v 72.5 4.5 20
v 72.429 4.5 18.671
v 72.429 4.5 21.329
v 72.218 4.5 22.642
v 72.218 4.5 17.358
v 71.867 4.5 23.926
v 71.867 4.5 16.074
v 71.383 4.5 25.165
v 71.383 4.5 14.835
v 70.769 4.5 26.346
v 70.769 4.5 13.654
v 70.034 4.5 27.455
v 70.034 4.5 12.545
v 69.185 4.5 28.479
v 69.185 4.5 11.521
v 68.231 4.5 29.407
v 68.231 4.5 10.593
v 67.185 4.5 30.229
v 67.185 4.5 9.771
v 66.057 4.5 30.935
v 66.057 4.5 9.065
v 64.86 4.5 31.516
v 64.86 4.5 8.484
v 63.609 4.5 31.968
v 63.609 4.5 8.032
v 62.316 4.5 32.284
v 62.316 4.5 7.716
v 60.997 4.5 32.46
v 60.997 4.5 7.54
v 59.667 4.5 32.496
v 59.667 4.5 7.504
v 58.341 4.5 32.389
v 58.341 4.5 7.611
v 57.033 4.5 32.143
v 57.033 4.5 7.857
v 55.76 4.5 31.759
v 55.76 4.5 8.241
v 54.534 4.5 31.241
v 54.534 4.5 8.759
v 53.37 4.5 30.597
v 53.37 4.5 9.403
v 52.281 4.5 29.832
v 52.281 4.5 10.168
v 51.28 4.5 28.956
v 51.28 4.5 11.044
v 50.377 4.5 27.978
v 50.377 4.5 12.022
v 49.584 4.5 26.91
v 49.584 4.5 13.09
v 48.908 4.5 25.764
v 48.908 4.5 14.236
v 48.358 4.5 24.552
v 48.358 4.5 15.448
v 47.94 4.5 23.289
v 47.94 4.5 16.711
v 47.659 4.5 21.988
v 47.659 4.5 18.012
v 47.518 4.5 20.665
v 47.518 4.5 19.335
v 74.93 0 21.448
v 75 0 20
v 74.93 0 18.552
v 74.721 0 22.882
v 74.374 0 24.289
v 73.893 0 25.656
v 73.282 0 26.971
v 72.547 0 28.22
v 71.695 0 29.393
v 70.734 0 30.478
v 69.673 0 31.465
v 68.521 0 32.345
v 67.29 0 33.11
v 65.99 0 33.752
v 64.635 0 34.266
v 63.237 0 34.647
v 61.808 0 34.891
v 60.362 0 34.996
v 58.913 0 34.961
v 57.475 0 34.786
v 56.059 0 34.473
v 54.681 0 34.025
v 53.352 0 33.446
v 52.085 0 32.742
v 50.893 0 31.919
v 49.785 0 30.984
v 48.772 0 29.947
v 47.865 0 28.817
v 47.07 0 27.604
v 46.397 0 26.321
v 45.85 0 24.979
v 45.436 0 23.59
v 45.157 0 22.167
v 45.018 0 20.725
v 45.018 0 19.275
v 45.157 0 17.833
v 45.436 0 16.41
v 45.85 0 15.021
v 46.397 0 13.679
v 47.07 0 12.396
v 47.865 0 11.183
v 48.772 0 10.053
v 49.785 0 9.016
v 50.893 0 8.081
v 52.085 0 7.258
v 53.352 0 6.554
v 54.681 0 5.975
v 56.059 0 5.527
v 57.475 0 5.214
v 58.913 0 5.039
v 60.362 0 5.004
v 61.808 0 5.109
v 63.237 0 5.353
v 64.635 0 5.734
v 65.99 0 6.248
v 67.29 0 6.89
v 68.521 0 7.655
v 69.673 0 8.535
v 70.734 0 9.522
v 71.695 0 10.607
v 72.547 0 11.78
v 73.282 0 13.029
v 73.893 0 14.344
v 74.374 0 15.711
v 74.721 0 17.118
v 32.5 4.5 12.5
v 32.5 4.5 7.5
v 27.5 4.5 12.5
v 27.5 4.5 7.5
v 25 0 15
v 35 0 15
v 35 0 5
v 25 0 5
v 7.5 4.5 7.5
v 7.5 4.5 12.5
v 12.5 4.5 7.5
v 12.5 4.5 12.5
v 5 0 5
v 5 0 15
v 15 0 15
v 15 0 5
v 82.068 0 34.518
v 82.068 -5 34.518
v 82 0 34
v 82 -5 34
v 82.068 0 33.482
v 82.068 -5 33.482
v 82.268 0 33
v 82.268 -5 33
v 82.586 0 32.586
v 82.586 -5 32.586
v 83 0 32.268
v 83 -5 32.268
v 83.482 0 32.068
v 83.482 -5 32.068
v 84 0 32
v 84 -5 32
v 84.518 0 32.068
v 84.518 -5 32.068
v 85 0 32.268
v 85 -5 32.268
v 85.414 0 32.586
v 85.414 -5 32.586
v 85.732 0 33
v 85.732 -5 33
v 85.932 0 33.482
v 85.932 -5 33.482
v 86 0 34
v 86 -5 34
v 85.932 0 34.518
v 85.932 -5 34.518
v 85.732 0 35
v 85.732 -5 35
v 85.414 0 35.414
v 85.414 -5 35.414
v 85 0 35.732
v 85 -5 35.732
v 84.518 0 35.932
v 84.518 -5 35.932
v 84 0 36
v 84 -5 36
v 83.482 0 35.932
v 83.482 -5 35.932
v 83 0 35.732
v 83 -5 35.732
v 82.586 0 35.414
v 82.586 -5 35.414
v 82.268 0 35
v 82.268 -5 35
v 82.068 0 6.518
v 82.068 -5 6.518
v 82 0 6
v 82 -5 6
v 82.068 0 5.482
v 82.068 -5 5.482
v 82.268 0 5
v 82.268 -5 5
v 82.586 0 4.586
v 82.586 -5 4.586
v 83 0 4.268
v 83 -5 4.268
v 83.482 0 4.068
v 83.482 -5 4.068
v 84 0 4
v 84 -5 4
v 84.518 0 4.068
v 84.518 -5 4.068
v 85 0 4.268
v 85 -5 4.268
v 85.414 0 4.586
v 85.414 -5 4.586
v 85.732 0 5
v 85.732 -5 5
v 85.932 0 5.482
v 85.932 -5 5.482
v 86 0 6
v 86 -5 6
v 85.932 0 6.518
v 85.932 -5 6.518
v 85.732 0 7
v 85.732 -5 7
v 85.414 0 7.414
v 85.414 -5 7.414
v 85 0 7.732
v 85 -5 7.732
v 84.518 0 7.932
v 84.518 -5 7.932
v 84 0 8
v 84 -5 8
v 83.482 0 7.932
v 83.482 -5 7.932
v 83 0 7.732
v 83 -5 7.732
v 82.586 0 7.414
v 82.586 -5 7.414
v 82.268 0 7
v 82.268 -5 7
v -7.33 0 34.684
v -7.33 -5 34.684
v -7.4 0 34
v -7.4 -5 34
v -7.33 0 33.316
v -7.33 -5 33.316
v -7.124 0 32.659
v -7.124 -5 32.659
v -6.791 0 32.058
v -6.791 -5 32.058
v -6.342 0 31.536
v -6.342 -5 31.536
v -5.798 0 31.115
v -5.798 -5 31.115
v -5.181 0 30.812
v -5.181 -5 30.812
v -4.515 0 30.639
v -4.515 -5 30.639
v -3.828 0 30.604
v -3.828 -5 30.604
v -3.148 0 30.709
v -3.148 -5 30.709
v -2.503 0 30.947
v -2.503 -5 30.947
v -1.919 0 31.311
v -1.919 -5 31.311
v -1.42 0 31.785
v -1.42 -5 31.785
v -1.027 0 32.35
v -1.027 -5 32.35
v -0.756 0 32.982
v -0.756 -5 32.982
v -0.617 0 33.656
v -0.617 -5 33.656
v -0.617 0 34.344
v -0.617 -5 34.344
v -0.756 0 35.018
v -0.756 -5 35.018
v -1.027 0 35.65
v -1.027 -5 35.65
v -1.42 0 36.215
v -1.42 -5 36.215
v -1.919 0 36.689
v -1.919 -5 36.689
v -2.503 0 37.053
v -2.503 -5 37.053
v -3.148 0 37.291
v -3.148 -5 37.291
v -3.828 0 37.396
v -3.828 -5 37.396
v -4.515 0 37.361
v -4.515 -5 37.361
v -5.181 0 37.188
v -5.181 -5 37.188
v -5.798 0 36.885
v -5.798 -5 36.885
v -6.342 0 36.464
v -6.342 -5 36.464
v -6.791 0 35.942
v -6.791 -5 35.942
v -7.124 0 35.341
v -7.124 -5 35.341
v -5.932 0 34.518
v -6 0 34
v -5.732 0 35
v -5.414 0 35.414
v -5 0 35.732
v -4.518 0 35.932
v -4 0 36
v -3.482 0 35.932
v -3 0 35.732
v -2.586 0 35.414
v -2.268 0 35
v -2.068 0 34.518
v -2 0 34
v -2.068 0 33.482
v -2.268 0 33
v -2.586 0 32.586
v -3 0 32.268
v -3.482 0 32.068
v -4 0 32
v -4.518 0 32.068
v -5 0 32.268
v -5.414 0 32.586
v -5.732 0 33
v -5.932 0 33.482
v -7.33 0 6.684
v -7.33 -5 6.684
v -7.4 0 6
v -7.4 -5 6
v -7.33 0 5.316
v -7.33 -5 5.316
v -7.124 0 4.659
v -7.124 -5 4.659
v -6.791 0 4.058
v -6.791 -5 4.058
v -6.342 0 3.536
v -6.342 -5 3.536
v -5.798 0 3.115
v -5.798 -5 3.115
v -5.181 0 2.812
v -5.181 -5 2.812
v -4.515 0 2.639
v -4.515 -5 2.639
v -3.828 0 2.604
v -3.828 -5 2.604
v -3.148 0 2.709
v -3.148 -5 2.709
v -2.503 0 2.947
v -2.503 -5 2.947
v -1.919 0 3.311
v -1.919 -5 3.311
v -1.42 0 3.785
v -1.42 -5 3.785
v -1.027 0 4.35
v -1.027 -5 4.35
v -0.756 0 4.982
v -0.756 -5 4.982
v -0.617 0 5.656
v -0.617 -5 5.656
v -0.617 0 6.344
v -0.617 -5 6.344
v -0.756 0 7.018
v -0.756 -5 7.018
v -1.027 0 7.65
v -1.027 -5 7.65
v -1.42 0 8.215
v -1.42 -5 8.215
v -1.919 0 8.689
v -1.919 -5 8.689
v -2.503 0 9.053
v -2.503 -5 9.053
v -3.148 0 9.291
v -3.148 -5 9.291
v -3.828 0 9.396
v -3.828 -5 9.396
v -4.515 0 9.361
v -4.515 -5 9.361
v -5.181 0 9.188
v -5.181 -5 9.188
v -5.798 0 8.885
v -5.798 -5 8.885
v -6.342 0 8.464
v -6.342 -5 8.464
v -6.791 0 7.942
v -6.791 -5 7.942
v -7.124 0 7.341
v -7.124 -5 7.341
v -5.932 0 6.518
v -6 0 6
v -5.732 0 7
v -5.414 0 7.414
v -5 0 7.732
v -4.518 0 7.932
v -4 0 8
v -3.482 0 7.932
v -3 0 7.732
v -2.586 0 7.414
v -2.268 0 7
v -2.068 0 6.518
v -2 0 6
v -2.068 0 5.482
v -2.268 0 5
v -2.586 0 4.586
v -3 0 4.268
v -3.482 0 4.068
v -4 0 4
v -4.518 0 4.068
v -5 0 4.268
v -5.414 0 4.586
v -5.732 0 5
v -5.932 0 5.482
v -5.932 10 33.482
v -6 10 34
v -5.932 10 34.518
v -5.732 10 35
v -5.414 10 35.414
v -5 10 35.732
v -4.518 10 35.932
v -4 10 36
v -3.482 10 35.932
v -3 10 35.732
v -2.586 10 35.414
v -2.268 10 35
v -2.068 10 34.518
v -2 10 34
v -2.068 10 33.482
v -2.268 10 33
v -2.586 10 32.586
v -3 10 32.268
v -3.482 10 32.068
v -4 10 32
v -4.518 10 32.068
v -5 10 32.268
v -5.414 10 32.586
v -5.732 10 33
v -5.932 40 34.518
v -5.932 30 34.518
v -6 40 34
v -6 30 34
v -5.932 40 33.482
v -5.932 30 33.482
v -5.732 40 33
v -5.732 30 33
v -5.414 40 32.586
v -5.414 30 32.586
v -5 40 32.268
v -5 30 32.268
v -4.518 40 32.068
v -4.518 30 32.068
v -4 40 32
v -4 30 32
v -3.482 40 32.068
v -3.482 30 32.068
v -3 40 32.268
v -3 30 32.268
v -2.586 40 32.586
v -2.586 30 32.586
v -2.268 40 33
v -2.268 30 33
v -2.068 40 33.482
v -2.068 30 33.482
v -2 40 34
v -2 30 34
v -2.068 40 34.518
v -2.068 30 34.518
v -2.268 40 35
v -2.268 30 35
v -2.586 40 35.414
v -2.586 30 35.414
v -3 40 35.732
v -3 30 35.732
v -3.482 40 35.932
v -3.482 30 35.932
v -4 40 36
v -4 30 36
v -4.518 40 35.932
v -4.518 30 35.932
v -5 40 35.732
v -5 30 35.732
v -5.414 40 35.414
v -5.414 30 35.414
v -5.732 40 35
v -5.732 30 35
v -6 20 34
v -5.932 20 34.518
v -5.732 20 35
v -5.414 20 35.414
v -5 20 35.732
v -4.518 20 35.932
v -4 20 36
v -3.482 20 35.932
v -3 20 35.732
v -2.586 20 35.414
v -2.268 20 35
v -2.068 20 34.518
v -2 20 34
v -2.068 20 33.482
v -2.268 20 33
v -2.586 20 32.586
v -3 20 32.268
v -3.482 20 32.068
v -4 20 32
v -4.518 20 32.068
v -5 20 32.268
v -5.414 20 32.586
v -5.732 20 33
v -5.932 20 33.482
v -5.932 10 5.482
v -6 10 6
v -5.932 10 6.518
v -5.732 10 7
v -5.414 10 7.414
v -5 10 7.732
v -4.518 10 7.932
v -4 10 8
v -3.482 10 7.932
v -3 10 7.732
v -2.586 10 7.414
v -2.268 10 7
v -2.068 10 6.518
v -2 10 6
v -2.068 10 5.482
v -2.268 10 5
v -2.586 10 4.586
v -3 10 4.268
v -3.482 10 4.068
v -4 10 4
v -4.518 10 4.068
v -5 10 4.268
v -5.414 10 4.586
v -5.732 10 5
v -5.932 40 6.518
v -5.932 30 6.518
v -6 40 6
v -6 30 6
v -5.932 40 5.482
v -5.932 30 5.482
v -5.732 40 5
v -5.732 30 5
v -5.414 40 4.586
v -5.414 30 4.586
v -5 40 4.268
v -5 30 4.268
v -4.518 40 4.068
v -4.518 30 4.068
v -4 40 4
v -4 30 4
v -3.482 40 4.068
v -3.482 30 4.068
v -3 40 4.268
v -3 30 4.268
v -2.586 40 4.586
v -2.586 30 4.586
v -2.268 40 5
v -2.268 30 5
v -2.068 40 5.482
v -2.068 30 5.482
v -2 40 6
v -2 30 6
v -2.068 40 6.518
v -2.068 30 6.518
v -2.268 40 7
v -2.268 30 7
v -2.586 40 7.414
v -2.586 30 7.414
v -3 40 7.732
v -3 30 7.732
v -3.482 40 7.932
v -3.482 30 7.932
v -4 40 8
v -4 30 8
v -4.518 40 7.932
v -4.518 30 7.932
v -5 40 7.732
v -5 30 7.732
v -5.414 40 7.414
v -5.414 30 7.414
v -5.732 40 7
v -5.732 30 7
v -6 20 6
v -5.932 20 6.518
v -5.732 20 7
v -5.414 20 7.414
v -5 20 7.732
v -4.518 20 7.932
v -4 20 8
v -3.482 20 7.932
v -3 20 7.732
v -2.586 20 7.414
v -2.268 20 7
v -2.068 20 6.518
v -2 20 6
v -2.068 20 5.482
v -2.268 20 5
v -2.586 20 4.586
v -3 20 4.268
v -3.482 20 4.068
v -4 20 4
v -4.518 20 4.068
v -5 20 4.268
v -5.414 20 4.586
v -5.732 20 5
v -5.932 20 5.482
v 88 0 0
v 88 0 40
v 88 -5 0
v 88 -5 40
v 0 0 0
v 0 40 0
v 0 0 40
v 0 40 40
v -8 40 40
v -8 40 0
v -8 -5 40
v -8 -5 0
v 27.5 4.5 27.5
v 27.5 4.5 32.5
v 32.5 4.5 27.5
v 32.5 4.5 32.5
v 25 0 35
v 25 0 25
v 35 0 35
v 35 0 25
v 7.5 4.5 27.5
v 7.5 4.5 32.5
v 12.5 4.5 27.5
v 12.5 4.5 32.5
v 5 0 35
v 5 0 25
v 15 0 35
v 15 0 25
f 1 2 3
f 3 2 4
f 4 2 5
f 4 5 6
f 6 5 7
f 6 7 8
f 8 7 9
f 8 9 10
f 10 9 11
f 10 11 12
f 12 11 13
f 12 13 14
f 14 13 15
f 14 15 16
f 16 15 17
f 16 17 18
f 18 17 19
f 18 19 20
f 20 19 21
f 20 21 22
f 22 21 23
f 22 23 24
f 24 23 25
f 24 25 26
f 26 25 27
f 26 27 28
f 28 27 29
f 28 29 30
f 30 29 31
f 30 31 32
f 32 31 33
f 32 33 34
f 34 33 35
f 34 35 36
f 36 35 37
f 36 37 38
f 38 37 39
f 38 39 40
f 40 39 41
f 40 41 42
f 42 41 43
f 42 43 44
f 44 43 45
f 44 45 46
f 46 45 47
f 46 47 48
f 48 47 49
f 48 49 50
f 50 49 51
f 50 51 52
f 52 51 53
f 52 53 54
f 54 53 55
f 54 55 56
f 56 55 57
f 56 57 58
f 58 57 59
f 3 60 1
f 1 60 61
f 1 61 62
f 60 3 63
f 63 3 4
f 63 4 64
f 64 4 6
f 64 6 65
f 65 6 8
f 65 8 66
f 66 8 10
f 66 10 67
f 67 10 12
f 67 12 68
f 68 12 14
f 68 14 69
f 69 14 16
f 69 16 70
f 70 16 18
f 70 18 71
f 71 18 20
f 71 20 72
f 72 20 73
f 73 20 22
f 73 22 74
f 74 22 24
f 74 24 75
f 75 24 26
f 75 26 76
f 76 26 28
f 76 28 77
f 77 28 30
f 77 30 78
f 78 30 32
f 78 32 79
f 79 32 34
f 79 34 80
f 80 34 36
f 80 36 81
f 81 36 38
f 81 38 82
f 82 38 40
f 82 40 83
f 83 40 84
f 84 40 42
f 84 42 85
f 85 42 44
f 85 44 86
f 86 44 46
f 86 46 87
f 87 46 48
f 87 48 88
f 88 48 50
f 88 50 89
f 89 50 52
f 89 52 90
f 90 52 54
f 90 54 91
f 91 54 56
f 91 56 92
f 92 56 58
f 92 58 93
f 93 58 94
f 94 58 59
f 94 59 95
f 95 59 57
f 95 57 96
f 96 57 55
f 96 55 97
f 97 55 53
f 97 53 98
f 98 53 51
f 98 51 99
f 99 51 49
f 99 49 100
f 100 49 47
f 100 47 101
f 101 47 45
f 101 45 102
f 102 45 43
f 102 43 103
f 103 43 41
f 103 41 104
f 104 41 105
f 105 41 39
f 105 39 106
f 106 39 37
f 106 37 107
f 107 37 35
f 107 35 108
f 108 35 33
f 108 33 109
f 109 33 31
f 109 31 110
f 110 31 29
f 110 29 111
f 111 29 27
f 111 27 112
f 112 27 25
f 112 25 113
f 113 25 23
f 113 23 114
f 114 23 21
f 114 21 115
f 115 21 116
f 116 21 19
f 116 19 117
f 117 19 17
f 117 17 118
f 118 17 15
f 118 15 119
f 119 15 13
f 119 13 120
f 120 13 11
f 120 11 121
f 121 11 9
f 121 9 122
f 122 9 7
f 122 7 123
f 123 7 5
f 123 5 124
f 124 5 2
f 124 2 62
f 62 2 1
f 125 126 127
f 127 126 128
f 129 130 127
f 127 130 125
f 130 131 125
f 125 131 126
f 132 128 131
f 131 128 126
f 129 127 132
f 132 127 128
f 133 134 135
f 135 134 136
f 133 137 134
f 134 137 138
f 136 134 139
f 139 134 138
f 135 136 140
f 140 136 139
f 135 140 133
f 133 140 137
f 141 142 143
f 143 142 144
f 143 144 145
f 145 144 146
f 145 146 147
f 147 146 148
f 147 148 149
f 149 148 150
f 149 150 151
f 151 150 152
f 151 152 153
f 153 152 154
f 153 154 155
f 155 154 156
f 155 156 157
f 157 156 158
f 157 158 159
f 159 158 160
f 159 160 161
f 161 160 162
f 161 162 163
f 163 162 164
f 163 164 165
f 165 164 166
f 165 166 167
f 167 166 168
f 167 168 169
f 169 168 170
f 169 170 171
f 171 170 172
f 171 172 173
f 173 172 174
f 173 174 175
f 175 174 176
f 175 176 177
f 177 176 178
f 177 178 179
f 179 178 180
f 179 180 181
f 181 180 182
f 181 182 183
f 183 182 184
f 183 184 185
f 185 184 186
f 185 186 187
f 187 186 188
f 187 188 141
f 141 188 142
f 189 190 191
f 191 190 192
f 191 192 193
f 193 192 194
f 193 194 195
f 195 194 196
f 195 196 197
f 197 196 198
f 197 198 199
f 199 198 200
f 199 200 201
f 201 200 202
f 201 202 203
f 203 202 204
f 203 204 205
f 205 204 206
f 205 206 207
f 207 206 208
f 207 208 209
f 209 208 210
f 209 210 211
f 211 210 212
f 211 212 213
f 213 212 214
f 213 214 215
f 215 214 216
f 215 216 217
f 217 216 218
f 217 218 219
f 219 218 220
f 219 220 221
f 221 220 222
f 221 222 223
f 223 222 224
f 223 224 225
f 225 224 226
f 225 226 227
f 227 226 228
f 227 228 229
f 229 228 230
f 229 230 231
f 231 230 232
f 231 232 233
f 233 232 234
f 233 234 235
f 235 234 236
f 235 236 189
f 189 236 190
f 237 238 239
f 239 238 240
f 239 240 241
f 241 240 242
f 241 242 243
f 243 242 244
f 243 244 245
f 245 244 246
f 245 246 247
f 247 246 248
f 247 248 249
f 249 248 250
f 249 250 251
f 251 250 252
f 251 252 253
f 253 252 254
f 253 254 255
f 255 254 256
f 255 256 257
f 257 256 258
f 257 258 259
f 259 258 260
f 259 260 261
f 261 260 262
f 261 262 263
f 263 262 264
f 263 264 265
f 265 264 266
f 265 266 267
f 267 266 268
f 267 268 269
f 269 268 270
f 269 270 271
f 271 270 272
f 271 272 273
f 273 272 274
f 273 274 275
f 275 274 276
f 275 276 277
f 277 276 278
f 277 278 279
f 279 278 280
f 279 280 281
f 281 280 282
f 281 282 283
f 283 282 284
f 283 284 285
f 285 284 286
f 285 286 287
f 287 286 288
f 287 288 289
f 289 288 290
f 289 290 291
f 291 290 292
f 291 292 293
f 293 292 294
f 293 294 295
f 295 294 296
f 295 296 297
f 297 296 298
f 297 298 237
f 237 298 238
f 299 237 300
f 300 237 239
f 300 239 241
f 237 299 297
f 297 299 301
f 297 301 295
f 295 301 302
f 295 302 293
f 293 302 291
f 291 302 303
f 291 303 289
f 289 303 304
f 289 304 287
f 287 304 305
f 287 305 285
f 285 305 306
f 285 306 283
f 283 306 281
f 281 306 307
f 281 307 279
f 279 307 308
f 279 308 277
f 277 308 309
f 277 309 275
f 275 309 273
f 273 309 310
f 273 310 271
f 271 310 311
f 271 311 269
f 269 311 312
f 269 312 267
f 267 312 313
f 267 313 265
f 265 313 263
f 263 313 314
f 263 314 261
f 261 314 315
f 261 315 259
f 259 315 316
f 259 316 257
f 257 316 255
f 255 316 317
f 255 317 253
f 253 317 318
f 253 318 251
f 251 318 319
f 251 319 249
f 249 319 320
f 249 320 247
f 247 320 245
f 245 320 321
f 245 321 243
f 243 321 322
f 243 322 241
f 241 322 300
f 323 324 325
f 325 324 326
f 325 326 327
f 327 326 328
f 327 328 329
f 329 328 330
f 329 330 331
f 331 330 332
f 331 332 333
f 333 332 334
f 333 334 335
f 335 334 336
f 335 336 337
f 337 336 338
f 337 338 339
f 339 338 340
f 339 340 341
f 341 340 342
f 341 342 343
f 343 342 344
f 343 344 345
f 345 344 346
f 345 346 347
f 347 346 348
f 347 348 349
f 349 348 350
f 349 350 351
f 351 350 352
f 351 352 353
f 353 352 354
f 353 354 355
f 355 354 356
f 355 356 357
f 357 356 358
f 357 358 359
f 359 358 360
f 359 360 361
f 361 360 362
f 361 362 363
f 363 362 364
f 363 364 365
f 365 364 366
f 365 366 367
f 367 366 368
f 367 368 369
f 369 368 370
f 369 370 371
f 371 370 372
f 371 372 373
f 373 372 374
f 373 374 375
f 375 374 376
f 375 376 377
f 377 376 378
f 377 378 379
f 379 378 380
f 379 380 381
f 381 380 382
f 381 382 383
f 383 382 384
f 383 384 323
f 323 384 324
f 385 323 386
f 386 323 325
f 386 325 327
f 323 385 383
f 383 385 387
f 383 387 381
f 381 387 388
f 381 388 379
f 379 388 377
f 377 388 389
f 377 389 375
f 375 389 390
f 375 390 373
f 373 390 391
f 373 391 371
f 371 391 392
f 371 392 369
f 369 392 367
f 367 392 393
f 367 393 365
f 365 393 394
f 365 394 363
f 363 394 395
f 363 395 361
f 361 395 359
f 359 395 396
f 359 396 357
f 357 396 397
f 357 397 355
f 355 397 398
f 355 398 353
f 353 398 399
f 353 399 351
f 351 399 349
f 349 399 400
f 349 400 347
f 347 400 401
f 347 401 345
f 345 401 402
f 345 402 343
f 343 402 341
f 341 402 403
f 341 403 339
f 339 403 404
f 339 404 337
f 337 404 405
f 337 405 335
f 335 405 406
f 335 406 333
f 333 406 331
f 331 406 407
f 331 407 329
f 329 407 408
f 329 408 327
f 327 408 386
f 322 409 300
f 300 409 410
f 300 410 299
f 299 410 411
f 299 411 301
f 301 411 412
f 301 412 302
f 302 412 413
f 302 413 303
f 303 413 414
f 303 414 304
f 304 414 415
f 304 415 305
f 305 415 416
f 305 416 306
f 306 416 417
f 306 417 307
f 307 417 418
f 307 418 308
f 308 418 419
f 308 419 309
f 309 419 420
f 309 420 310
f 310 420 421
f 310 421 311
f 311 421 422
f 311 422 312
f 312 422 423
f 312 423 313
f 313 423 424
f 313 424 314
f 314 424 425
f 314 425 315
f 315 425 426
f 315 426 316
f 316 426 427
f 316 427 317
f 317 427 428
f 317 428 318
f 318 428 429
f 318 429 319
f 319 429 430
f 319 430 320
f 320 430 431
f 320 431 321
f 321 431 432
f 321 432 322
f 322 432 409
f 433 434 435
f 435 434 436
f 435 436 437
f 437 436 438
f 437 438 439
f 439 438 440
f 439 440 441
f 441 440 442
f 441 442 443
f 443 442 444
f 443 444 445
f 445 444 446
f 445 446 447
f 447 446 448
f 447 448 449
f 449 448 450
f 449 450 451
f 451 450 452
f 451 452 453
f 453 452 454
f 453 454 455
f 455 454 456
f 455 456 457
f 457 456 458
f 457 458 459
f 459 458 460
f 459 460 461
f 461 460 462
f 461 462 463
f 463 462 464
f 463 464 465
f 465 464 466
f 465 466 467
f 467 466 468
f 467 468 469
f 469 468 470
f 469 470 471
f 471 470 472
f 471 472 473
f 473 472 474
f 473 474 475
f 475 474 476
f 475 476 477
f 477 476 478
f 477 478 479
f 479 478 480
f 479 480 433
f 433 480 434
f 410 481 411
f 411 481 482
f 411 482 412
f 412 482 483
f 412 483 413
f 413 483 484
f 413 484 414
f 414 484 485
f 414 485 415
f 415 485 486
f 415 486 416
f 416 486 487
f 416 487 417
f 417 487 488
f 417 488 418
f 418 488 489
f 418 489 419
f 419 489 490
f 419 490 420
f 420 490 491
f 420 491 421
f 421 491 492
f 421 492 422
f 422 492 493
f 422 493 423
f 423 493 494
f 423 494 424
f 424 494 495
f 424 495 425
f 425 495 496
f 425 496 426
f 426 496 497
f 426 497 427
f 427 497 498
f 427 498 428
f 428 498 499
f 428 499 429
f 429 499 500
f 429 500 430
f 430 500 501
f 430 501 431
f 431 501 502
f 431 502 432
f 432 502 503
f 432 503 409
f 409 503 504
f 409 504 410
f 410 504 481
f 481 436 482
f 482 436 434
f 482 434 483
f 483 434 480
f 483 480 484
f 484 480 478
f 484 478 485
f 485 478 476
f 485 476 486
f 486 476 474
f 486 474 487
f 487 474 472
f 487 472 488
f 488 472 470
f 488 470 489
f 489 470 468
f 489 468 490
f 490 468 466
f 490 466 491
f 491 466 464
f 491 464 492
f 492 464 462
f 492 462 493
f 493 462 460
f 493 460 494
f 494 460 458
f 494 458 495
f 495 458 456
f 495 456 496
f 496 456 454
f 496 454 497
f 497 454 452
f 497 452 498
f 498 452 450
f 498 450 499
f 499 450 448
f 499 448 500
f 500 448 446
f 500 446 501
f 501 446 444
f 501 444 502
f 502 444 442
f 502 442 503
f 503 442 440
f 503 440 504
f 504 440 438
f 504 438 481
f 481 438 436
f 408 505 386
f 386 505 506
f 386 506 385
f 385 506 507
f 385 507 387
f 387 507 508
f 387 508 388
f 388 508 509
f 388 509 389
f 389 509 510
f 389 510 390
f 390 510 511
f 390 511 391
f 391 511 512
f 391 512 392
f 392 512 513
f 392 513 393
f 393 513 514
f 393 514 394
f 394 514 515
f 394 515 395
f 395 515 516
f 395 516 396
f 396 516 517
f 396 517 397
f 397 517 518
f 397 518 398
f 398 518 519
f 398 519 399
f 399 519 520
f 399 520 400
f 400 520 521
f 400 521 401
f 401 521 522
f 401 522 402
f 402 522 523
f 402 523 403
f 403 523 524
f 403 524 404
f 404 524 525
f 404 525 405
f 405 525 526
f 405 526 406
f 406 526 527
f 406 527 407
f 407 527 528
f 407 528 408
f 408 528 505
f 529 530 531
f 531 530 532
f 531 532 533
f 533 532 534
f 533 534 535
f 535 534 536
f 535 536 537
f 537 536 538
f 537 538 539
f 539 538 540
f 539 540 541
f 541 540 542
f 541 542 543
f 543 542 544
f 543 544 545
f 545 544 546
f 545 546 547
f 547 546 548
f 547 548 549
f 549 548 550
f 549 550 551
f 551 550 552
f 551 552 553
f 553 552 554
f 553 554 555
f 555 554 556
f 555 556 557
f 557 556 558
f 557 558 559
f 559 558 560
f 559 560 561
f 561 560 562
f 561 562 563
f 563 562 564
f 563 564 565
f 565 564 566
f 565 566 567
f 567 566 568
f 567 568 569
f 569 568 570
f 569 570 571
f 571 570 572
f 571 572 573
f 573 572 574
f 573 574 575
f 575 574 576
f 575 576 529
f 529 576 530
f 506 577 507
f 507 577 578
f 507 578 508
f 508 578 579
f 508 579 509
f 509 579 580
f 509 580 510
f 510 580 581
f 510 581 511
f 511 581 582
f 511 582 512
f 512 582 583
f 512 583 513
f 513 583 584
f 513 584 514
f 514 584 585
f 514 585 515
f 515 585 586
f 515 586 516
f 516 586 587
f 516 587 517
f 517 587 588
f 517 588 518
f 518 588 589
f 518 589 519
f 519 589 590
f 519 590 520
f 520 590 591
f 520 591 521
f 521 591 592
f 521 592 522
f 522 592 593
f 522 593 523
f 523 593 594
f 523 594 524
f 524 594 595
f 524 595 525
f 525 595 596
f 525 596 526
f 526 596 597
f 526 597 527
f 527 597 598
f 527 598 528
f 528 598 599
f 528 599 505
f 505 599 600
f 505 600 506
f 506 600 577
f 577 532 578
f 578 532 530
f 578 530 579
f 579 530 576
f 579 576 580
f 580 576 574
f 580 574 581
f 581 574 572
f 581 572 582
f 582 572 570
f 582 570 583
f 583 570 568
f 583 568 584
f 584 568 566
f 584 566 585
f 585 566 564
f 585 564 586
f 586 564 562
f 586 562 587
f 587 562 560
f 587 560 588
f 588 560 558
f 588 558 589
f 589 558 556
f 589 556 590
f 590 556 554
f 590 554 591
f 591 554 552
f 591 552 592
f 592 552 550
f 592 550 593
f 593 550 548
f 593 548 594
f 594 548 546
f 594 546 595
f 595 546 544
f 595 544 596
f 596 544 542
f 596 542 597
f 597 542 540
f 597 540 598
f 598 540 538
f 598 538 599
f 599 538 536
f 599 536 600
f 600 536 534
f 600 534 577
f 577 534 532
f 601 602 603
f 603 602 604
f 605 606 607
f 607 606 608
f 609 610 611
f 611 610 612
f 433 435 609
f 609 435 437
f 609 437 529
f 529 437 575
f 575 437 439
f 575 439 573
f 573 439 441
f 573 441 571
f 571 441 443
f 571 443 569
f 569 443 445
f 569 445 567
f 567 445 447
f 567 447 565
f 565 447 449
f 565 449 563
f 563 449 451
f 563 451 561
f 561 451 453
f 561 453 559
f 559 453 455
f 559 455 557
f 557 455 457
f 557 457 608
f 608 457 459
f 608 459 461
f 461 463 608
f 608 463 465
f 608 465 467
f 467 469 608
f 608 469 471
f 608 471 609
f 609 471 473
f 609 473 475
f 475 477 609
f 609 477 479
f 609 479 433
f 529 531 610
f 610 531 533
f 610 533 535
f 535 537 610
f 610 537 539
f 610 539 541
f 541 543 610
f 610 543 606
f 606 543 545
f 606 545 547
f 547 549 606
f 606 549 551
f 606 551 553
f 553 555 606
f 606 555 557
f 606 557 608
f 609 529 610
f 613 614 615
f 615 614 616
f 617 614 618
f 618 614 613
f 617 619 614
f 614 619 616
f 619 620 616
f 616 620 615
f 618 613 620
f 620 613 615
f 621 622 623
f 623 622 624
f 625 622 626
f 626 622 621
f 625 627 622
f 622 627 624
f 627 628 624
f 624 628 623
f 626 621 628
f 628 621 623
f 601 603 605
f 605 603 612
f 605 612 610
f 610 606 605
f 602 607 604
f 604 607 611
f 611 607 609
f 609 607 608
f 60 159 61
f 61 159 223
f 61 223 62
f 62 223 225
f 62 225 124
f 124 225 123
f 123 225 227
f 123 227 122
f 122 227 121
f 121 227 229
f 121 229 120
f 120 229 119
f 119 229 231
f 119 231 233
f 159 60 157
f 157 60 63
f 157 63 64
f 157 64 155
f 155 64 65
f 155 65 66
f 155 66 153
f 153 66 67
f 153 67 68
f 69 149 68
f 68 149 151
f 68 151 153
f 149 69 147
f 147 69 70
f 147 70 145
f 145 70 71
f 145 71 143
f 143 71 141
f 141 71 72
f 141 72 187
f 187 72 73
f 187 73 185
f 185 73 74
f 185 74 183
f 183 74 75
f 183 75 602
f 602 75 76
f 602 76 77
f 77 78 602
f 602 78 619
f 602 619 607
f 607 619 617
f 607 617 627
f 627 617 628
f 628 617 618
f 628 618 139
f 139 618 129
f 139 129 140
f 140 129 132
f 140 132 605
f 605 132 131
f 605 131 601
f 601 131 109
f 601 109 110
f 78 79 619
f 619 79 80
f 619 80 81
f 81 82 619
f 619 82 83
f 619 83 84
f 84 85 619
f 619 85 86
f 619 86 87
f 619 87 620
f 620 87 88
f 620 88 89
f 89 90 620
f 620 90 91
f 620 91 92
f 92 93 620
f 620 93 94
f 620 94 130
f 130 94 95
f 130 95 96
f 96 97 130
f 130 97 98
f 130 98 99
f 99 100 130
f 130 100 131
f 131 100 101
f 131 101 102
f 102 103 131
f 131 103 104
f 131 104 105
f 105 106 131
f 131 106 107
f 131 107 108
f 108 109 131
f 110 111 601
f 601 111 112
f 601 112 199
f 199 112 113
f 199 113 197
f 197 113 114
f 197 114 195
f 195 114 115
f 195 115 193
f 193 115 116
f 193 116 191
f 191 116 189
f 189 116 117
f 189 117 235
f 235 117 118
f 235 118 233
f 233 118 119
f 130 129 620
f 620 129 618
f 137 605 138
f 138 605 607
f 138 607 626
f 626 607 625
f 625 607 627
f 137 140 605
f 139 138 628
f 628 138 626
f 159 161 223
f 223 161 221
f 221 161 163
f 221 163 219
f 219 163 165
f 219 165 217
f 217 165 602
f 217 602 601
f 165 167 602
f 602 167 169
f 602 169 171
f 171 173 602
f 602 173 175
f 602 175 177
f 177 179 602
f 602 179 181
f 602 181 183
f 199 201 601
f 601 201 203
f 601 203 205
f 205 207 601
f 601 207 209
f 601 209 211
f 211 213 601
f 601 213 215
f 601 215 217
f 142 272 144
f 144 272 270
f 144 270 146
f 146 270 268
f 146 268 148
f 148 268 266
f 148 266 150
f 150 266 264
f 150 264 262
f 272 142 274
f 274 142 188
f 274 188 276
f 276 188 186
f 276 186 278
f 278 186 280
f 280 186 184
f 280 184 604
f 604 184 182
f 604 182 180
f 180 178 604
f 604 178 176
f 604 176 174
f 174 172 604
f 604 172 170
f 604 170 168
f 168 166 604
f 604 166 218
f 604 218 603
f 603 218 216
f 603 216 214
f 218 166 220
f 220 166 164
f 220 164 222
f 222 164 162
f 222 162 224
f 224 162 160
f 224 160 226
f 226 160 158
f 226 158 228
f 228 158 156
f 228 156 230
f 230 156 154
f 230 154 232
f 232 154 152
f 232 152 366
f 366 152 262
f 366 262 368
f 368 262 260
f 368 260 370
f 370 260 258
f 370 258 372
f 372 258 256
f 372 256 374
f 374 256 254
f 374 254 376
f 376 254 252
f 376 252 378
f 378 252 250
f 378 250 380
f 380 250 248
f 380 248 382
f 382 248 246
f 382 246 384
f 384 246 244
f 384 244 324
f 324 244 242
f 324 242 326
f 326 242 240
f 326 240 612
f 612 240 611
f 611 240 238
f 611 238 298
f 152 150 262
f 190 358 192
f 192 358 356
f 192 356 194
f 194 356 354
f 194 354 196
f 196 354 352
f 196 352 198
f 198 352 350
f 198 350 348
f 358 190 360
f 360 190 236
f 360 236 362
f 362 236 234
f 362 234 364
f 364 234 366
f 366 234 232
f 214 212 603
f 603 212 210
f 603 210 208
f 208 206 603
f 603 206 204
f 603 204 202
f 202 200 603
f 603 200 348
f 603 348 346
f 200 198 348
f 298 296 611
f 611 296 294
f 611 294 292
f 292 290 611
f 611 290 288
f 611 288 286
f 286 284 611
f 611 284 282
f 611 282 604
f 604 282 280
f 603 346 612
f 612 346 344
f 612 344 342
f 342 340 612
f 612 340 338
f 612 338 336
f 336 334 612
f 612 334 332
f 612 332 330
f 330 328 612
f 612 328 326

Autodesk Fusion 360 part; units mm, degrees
sketch "baseplate" plane through (0, 0, 0) normal (0, 1, 0) x (1, 0, 0)
  line L0 (0, 0) -> (80, 0)
  line L1 (80, 0) -> (80, -40)
  line L2 (80, -40) -> (0, -40)
  line L3 (0, -40) -> (0, 0)
  dimension "d1" = 80
  dimension "d2" = 40
sketch "pryamid_base" plane through (0, 0, 0) normal (0, 1, 0) x (1, 0, 0)
  line L0 (5, -35) -> (15, -35)
  line L1 (15, -35) -> (15, -25)
  line L2 (15, -25) -> (5, -25)
  line L3 (5, -25) -> (5, -35)
  line L4 (35, -35) -> (35, -25)
  line L5 (35, -25) -> (25, -25)
  line L6 (25, -35) -> (35, -35)
  line L7 (25, -25) -> (25, -35)
  line L8 (35, -5) -> (25, -5)
  line L9 (35, -15) -> (35, -5)
  line L10 (15, -5) -> (5, -5)
  line L11 (25, -5) -> (25, -15)
  line L12 (5, -5) -> (5, -15)
  line L13 (5, -15) -> (15, -15)
  line L14 (15, -15) -> (15, -5)
  line L15 (25, -15) -> (35, -15)
  line L16 (55, -15) -> (65, -25)
  circle A0 centre (60, -20) radius 15
  dimension "d3" = 10
  dimension "d4" = 10
  dimension "d5" = 10
  dimension "d6" = 10
  dimension "d11" = 10
  dimension "d12" = 10
  dimension "d13" = 10
  dimension "d14" = 10
  dimension "d48" = 30
ref_plane "WorkPlane1" through (0, 4.5, 0) normal (0, 1, 0) x (0, 0, 1)
sketch "pryamid_offsetplane" plane through (0, 4.5, 0) normal (0, 1, 0) x (1, 0, 0)
  line L0 (7.5, -32.5) -> (12.5, -32.5)
  line L1 (12.5, -32.5) -> (12.5, -27.5)
  line L2 (12.5, -27.5) -> (7.5, -27.5)
  line L3 (7.5, -27.5) -> (7.5, -32.5)
  line L4 (27.5, -27.5) -> (27.5, -32.5)
  line L5 (32.5, -32.5) -> (32.5, -27.5)
  line L6 (27.5, -32.5) -> (32.5, -32.5)
  line L7 (32.5, -27.5) -> (27.5, -27.5)
  line L8 (7.5, -27.5) -> (7.5, -32.5)
  line L9 (12.5, -32.5) -> (12.5, -27.5)
  line L10 (7.5, -32.5) -> (12.5, -32.5)
  line L11 (12.5, -27.5) -> (7.5, -27.5)
  line L12 (27.5, -7.5) -> (27.5, -12.5)
  line L13 (12.5, -12.5) -> (12.5, -7.5)
  line L14 (12.5, -7.5) -> (7.5, -7.5)
  line L15 (7.5, -7.5) -> (7.5, -12.5)
  line L16 (7.5, -12.5) -> (12.5, -12.5)
  line L17 (32.5, -7.5) -> (27.5, -7.5)
  line L18 (27.5, -12.5) -> (32.5, -12.5)
  line L19 (12.5, -7.5) -> (7.5, -7.5)
  line L20 (32.5, -12.5) -> (32.5, -7.5)
  line L21 (12.5, -12.5) -> (12.5, -7.5)
  line L22 (7.5, -12.5) -> (12.5, -12.5)
  line L23 (7.5, -7.5) -> (7.5, -12.5)
  circle A0 centre (60, -20) radius 12.5
  dimension "d49" = 25
extrude "Extrude1" add sketch "baseplate" against normal blind 5
loft "Loft1" add profiles "pryamid_base", "pryamid_offsetplane" section 1 contours L0 L1 L2 L3 section 2 contours L0 L1 L2 L3 L8 L9 L10 L11
loft "Loft2" add profiles "pryamid_base", "pryamid_offsetplane" section 1 contours L4 L5 L6 L7 section 2 contours L4 L5 L6 L7
sketch "sidewall" plane through (0, 0, 0) normal (0, 1, 0) x (1, 0, 0)
  line L0 (0, 0) -> (-8, 0)
  line L1 (-8, 0) -> (-8, -40)
  line L2 (-8, -40) -> (0, -40)
  line L3 (0, -40) -> (0, 0)
  dimension "d22" = 8
extrude "Extrude2" add sketch "sidewall" along normal blind 40 and the other way blind 5
sketch "sidemount" plane through (0, 0, 0) normal (0, 1, 0) x (1, 0, 0)
  line L0 (80, 0) -> (88, 0)
  line L1 (88, 0) -> (88, -40)
  line L2 (88, -40) -> (80, -40)
  line L3 (80, -40) -> (80, 0)
extrude "Extrude3" add sketch "sidemount" against normal blind 5
sketch "holes" plane through (0, -5, 0) normal (0, -1, 0) x (1, 0, 0)
  line L0 (88, 40) -> (-8, 40)
  line L1 (-8, 40) -> (-8, 0)
  line L2 (-8, 0) -> (88, 0)
  line L3 (88, 0) -> (88, 40)
  line L4 (-8, 0) -> (-4, 0)
  line L5 (-8, 6) -> (-8, 0)
  line L6 (-4, 40) -> (-8, 40)
  line L7 (-8, 40) -> (-8, 34)
  circle A0 centre (-4, 34) radius 2
  circle A1 centre (-4, 6) radius 2
  circle A2 centre (-4, 34) radius 3.4
  circle A3 centre (-4, 6) radius 3.4
  dimension "d29" = 6
  dimension "d30" = 4
  dimension "d31" = 4
  dimension "d32" = 6.8
  dimension "d33" = 6.8
extrude "Extrude4" cut sketch "holes" against normal blind 51 contours A0 | A1
extrude "Extrude5" cut sketch "holes" against normal blind 5 contours A2 | A3
sketch "holes (1)" plane through (0, -5, 0) normal (0, -1, 0) x (1, 0, 0)
  circle A0 centre (84, 34) radius 2
  circle A1 centre (84, 6) radius 2
  circle A2 centre (84, 34) radius 3.4
  circle A3 centre (84, 6) radius 3.4
  dimension "d42" = 4
  dimension "d43" = 4
  dimension "d44" = 6.8
  dimension "d45" = 6.8
extrude "Extrude6" cut sketch "holes (1)" against normal blind 16 contours A0 | A1
loft "Loft9" add profiles "pryamid_offsetplane", "pryamid_base" section 1 contours L13 L14 L15 L16 L19 L21 L22 L23 section 2 contours L10 L12 L13 L14
loft "Loft10" add profiles "pryamid_base", "pryamid_offsetplane" section 1 contours L8 L9 L11 L15 section 2 contours L12 L17 L18 L20
loft "Loft11" add profiles "pryamid_offsetplane", "pryamid_base" section 1 contours A0 section 2 contours A0
